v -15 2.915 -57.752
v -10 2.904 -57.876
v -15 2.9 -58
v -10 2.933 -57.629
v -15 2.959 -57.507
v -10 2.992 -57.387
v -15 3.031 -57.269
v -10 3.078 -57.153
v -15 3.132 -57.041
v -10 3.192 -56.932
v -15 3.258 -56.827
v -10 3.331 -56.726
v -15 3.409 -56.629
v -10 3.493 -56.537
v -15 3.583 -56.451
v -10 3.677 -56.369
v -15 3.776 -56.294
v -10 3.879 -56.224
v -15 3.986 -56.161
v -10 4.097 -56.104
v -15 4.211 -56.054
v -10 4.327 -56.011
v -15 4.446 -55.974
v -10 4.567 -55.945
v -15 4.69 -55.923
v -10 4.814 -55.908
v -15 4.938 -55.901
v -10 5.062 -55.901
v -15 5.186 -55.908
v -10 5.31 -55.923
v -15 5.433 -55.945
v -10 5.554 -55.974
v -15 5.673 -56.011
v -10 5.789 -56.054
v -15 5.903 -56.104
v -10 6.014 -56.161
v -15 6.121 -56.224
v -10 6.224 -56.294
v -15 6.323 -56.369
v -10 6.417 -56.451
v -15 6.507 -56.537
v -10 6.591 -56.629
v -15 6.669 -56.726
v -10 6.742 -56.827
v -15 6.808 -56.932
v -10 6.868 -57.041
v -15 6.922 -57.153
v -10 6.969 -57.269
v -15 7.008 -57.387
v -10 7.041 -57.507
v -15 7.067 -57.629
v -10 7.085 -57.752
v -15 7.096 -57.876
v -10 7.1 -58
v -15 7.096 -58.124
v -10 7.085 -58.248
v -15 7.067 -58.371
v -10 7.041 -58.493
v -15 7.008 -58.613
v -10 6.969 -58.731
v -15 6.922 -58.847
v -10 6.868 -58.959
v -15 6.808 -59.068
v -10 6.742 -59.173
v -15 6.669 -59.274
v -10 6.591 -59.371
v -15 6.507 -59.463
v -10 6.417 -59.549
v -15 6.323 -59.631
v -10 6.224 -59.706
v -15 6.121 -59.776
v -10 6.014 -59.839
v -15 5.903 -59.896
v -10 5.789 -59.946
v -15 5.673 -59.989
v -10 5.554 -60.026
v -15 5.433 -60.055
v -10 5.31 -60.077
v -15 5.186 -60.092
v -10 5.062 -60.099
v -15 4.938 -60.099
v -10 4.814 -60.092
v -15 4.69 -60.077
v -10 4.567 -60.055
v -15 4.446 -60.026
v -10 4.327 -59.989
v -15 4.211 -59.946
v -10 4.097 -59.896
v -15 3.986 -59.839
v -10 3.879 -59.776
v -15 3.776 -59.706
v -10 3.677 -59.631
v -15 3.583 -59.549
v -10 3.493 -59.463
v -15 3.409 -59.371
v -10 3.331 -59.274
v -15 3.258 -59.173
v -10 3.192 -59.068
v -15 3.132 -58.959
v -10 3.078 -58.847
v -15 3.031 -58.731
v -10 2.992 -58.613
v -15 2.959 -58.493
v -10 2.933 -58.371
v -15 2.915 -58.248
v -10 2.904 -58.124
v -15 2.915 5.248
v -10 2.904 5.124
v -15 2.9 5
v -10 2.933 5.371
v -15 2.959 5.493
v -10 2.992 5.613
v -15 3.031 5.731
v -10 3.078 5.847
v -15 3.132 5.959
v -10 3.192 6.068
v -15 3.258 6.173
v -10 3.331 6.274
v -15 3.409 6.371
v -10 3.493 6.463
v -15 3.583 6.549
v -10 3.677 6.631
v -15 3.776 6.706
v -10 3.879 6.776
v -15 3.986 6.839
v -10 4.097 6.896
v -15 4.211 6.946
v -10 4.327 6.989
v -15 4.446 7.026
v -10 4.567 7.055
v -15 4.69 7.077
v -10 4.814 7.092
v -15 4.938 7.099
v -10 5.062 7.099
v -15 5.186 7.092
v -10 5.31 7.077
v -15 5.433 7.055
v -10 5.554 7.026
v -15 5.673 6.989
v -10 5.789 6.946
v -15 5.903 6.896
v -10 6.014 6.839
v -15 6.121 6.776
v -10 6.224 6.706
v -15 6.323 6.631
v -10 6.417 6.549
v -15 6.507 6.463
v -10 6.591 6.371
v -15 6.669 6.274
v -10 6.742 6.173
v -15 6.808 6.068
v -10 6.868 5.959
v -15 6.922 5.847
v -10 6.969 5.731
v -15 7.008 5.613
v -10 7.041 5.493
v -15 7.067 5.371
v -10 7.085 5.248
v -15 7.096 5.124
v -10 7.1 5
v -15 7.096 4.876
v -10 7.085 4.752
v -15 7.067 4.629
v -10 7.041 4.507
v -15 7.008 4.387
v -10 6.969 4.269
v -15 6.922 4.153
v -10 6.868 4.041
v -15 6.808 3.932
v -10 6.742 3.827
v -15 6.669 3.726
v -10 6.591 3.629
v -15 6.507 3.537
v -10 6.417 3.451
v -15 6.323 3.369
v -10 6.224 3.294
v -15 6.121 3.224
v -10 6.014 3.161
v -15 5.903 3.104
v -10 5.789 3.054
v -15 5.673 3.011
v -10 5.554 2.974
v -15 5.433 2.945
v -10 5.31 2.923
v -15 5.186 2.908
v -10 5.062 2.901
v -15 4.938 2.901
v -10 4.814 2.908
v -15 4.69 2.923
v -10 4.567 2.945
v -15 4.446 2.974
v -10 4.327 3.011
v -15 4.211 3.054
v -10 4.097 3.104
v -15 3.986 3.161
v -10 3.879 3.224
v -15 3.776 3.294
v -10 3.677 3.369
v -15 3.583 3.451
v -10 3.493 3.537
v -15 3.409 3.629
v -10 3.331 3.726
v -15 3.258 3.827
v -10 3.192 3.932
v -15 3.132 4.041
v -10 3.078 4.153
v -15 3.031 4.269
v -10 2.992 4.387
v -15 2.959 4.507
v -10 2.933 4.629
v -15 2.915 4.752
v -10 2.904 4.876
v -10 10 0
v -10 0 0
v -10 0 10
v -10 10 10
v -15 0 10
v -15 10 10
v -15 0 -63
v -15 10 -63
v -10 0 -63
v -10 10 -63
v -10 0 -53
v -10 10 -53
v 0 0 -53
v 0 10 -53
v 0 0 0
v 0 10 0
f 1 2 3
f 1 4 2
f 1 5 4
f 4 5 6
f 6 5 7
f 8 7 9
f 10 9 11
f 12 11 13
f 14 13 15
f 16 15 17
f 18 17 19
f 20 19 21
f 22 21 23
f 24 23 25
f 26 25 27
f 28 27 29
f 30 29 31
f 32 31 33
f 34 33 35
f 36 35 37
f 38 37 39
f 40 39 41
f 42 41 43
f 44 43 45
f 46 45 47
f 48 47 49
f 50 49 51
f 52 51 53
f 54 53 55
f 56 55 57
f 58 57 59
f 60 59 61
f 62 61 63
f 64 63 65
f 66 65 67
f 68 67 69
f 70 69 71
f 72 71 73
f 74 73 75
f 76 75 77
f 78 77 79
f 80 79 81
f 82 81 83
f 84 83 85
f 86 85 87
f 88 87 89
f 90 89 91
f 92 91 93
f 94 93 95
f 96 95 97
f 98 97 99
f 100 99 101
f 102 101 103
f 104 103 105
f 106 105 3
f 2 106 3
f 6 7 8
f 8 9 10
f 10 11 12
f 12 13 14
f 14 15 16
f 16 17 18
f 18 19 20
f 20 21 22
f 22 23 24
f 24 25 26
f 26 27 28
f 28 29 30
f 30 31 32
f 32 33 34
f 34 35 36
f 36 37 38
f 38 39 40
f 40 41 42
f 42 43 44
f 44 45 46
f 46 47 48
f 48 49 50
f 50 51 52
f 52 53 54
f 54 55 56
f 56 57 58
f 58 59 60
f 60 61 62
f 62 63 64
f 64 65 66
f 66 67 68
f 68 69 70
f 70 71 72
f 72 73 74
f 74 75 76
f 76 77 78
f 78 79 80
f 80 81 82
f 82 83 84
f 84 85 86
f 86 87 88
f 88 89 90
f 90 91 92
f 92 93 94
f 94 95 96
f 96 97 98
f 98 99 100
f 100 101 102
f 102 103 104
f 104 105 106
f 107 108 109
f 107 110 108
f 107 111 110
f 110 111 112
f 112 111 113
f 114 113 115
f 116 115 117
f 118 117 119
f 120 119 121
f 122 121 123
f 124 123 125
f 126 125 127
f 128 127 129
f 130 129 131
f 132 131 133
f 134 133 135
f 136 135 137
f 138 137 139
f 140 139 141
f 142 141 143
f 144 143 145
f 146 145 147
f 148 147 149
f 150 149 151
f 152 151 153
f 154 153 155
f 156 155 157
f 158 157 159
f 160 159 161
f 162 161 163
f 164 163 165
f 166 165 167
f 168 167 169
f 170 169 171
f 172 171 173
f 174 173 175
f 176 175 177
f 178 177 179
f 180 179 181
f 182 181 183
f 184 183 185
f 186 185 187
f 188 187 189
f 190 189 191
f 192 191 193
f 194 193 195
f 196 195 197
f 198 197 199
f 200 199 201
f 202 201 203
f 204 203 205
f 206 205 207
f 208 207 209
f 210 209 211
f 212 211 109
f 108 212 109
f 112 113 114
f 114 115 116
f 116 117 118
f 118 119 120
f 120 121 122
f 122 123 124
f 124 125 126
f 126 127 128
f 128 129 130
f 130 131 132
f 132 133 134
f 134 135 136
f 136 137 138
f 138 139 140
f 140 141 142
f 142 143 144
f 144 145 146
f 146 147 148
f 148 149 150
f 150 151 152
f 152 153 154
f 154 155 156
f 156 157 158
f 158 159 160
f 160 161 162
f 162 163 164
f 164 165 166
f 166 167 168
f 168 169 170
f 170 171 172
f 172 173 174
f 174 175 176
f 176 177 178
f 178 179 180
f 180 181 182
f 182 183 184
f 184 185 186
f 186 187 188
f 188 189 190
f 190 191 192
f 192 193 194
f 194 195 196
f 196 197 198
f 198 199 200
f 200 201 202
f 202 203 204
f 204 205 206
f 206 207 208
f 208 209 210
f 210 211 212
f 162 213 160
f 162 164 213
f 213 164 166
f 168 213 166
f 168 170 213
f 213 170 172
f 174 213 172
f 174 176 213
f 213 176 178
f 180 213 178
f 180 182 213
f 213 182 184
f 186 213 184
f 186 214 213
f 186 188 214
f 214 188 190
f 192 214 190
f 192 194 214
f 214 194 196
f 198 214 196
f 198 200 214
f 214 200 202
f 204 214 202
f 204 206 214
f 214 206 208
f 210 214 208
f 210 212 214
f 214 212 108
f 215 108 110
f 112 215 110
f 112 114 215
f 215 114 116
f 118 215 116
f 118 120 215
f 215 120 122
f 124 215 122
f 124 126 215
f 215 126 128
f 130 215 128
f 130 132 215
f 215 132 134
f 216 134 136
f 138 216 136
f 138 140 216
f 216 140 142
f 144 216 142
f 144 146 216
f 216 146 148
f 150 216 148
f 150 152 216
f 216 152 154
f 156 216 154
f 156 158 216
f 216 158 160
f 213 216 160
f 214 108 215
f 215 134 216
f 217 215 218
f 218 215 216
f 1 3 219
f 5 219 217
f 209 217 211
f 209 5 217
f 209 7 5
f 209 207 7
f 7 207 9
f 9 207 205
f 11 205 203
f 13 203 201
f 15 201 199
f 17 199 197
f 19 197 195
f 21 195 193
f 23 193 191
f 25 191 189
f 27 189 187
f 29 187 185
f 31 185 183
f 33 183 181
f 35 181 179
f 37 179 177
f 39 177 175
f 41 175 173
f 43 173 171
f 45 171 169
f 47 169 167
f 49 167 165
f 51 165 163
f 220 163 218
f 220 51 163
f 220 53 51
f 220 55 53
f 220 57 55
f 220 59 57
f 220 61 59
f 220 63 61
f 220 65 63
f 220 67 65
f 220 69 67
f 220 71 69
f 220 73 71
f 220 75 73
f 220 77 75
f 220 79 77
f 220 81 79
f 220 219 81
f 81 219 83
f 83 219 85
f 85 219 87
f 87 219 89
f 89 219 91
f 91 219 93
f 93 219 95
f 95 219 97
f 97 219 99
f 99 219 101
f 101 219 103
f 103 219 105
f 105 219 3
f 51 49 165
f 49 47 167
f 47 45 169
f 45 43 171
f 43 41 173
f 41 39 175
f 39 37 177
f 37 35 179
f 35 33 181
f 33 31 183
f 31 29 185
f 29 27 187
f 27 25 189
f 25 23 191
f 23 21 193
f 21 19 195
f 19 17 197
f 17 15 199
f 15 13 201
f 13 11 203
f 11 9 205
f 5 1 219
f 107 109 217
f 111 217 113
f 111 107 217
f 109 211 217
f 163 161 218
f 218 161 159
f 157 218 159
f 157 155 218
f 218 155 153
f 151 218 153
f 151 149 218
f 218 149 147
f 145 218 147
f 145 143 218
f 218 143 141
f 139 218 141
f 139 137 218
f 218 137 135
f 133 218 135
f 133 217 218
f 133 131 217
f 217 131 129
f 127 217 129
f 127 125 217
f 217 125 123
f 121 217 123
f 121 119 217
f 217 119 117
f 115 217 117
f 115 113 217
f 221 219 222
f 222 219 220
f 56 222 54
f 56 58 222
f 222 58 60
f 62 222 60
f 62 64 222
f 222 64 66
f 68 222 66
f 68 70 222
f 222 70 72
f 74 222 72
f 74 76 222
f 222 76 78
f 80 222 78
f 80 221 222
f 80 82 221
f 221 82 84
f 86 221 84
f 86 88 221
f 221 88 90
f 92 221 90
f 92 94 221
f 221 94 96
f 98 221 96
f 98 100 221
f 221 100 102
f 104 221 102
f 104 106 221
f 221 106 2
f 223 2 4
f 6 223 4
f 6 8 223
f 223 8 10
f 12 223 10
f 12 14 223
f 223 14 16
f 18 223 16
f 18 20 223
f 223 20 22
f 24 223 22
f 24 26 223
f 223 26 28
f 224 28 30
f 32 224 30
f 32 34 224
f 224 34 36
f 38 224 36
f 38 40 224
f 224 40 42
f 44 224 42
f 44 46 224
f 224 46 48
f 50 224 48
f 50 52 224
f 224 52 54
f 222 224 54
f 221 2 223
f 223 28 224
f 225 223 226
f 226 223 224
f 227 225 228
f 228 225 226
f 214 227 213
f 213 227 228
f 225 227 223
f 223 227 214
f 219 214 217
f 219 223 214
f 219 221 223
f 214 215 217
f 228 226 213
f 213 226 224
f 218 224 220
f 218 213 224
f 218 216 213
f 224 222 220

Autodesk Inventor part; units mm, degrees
ref_plane "YZ Plane" through (0, 0, 0) normal (1, 0, 0) x (0, 1, 0)
ref_plane "XZ Plane" through (0, 0, 0) normal (0, 1, 0) x (-1, 0, 0)
ref_plane "XY Plane" through (0, 0, 0) normal (0, 0, 1) x (1, 0, 0)
sketch "Sketch1" plane through (0, 0, 0) normal (0, 1, 0) x (-1, 0, 0)
  line L0 (0, 0) -> (10, 0)
  line L1 (10, 0) -> (10, 10)
  line L2 (10, 10) -> (15, 10)
  line L3 (15, 10) -> (15, -63)
  line L4 (15, -63) -> (10, -63)
  line L5 (10, -63) -> (10, -53)
  line L6 (10, -53) -> (0, -53)
  line L7 (0, -53) -> (0, 0)
  dimension "d6" = 53
  dimension "d7" = 73
  dimension "d8" = 10
  dimension "d9" = 5
  dimension "d10" = 10
extrude "Extrusion1" add sketch "Sketch1" along normal blind 10
hole "Hole1" at (-10, 5, 5) direction (-1, 0, 0) diameter 4.2 end through all
hole "Hole2" at (-10, 5, -58) direction (-1, 0, 0) diameter 4.2 end through all
properties part number "frontBeam" material "ABS Plastic"
